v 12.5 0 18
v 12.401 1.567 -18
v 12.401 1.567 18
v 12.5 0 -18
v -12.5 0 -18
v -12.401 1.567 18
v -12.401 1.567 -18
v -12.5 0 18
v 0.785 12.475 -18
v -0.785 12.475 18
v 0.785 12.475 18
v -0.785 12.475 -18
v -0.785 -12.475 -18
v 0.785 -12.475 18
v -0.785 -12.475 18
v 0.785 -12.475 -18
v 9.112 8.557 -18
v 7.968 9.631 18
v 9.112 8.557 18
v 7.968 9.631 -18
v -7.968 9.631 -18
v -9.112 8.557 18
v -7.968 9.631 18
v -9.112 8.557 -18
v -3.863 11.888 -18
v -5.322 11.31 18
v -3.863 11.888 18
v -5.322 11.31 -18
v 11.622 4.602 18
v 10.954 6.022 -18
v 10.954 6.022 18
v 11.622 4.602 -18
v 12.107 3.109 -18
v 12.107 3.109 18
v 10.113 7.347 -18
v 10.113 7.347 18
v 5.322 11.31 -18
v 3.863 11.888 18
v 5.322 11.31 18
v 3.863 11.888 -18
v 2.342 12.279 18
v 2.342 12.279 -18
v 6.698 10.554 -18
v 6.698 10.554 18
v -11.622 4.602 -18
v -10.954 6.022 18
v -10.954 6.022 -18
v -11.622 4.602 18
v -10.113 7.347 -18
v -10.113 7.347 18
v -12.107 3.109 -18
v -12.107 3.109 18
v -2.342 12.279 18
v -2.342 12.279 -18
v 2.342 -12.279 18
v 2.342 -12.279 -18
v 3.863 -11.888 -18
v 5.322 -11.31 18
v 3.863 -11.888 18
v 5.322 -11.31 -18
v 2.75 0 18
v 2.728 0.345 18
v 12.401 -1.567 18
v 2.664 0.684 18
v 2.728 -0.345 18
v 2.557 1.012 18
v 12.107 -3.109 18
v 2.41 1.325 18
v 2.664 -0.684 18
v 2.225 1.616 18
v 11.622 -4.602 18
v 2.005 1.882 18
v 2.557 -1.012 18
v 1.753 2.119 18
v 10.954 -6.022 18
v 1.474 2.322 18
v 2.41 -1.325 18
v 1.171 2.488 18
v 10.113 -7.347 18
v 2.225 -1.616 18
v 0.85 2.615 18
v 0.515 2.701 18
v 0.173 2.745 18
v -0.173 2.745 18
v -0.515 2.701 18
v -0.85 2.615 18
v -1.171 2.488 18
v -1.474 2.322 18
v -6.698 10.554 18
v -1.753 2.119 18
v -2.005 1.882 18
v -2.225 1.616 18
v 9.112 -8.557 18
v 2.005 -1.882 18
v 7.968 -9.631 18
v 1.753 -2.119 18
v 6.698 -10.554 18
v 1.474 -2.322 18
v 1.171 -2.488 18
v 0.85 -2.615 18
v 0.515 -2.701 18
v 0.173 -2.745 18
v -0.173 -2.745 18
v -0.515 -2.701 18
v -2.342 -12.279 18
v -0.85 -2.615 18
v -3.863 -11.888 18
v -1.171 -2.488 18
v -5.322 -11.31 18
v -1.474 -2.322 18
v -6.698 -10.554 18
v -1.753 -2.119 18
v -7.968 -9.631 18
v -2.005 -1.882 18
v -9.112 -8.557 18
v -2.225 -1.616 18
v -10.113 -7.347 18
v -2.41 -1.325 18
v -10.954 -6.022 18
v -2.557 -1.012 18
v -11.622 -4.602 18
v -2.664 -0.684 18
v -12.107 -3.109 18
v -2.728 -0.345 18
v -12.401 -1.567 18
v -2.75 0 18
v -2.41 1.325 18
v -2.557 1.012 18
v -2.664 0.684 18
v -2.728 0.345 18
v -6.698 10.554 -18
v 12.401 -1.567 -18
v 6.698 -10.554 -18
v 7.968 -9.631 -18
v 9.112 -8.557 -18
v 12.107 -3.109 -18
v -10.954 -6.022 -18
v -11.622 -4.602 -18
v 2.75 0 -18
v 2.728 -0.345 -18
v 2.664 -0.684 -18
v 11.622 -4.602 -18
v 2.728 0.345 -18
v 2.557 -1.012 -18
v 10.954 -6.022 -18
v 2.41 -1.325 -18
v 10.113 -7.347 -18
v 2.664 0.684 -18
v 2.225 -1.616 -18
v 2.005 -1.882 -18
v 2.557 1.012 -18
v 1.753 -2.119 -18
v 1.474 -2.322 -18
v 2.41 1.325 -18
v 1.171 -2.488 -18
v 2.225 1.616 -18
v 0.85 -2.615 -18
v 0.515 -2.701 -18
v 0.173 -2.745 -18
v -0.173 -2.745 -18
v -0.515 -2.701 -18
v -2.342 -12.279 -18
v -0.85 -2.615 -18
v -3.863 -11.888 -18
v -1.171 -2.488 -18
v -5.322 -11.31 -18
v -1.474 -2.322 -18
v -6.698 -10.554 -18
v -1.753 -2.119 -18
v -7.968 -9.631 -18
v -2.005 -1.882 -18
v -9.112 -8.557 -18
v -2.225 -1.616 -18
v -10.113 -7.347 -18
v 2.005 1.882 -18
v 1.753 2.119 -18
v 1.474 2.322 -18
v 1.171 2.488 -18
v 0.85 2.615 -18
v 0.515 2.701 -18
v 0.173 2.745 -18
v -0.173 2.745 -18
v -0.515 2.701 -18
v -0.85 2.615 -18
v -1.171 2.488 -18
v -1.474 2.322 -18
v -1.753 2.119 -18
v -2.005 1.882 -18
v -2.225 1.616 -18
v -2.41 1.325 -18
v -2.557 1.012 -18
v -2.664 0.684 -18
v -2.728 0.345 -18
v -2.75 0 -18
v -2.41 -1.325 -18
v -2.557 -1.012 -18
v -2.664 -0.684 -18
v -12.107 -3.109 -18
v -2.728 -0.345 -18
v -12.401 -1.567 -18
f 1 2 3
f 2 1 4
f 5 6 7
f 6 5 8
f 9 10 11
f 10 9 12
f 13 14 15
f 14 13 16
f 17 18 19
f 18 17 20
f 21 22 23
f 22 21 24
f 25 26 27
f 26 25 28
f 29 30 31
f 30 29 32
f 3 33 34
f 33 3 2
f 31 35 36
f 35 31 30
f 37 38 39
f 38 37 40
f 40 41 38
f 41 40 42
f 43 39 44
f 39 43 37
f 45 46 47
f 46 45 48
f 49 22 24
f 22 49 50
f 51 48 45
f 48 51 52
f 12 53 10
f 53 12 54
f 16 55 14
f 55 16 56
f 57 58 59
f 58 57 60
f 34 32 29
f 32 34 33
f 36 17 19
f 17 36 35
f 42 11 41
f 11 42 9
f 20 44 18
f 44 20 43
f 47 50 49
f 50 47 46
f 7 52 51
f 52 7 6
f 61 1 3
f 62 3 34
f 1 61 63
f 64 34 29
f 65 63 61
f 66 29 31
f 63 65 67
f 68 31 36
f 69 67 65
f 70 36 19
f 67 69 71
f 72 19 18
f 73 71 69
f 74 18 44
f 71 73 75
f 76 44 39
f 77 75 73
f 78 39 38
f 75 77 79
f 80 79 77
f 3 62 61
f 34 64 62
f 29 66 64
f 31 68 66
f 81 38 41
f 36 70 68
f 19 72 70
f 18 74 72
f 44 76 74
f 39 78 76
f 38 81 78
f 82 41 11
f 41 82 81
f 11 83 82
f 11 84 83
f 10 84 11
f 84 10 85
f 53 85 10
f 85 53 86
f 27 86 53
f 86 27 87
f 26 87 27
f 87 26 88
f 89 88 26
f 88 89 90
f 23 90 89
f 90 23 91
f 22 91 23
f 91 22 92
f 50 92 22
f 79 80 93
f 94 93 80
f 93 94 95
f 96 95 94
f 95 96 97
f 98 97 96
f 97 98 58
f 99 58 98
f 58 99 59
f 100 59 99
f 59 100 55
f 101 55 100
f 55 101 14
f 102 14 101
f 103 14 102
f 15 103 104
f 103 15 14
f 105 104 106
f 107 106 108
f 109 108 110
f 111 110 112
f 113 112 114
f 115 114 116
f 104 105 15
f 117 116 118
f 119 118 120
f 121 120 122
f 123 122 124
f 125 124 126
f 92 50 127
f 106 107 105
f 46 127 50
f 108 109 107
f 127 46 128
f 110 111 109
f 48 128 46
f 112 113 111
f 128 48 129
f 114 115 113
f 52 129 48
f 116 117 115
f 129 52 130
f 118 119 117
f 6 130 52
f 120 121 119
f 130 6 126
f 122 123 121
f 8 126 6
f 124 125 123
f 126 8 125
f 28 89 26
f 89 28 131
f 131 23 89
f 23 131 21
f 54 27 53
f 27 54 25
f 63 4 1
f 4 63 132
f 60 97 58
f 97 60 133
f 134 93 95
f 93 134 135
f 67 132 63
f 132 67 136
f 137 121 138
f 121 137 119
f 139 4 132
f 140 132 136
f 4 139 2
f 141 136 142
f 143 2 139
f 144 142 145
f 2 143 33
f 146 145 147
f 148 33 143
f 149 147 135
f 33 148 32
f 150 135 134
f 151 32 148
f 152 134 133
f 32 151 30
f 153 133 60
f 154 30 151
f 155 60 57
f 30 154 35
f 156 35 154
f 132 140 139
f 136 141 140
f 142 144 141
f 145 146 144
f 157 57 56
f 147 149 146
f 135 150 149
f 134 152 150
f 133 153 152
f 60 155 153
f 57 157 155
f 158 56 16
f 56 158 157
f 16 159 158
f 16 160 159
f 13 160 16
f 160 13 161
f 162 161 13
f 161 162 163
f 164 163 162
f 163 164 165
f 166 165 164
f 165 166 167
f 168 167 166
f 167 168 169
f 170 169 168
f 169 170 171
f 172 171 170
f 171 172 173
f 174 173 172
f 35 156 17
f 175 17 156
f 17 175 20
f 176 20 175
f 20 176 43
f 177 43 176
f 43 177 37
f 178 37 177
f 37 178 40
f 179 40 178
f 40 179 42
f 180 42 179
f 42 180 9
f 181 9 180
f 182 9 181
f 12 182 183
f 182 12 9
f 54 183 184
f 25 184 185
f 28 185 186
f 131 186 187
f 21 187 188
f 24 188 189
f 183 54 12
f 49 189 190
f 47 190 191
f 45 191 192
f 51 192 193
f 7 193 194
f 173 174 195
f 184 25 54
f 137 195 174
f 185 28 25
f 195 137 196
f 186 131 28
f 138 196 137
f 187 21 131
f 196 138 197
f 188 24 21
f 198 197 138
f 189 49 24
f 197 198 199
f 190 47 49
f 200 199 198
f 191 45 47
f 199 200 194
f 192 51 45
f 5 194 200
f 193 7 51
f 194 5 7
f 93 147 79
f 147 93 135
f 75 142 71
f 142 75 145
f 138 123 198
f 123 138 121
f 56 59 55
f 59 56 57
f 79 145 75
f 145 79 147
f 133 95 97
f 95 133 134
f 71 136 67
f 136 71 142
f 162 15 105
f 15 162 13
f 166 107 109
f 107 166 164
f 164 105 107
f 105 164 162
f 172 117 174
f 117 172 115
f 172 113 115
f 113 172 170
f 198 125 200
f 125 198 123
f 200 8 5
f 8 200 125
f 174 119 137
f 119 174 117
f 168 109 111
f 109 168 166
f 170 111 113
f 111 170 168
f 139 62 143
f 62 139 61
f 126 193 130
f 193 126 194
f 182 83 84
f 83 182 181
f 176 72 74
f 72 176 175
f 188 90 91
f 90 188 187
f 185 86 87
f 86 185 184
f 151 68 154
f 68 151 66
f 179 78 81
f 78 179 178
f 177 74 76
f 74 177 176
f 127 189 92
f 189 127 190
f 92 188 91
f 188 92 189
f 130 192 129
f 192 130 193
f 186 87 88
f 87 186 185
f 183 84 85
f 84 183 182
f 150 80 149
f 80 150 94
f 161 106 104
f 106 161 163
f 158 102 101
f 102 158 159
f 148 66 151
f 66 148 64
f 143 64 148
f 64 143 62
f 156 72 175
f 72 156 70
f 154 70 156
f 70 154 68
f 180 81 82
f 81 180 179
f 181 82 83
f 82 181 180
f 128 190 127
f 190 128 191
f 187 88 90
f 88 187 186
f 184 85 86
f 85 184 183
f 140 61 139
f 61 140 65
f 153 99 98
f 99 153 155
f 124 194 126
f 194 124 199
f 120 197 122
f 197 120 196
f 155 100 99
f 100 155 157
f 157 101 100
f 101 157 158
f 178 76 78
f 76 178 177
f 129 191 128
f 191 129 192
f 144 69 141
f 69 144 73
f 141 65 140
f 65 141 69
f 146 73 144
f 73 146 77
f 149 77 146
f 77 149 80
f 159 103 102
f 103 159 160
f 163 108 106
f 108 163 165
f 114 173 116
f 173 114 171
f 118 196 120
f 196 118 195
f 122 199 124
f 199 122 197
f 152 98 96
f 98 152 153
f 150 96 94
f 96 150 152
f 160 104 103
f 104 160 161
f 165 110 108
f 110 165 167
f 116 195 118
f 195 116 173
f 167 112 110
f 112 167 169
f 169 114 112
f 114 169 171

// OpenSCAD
$fn = 50;


difference() {
	union() {
		translate(v = [0, 0, -18.0000000000]) {
			cylinder(h = 36, r = 12.5000000000);
		}
	}
	union() {
		translate(v = [0, 0, -100.0000000000]) {
			cylinder(h = 200, r = 2.7500000000);
		}
	}
}
